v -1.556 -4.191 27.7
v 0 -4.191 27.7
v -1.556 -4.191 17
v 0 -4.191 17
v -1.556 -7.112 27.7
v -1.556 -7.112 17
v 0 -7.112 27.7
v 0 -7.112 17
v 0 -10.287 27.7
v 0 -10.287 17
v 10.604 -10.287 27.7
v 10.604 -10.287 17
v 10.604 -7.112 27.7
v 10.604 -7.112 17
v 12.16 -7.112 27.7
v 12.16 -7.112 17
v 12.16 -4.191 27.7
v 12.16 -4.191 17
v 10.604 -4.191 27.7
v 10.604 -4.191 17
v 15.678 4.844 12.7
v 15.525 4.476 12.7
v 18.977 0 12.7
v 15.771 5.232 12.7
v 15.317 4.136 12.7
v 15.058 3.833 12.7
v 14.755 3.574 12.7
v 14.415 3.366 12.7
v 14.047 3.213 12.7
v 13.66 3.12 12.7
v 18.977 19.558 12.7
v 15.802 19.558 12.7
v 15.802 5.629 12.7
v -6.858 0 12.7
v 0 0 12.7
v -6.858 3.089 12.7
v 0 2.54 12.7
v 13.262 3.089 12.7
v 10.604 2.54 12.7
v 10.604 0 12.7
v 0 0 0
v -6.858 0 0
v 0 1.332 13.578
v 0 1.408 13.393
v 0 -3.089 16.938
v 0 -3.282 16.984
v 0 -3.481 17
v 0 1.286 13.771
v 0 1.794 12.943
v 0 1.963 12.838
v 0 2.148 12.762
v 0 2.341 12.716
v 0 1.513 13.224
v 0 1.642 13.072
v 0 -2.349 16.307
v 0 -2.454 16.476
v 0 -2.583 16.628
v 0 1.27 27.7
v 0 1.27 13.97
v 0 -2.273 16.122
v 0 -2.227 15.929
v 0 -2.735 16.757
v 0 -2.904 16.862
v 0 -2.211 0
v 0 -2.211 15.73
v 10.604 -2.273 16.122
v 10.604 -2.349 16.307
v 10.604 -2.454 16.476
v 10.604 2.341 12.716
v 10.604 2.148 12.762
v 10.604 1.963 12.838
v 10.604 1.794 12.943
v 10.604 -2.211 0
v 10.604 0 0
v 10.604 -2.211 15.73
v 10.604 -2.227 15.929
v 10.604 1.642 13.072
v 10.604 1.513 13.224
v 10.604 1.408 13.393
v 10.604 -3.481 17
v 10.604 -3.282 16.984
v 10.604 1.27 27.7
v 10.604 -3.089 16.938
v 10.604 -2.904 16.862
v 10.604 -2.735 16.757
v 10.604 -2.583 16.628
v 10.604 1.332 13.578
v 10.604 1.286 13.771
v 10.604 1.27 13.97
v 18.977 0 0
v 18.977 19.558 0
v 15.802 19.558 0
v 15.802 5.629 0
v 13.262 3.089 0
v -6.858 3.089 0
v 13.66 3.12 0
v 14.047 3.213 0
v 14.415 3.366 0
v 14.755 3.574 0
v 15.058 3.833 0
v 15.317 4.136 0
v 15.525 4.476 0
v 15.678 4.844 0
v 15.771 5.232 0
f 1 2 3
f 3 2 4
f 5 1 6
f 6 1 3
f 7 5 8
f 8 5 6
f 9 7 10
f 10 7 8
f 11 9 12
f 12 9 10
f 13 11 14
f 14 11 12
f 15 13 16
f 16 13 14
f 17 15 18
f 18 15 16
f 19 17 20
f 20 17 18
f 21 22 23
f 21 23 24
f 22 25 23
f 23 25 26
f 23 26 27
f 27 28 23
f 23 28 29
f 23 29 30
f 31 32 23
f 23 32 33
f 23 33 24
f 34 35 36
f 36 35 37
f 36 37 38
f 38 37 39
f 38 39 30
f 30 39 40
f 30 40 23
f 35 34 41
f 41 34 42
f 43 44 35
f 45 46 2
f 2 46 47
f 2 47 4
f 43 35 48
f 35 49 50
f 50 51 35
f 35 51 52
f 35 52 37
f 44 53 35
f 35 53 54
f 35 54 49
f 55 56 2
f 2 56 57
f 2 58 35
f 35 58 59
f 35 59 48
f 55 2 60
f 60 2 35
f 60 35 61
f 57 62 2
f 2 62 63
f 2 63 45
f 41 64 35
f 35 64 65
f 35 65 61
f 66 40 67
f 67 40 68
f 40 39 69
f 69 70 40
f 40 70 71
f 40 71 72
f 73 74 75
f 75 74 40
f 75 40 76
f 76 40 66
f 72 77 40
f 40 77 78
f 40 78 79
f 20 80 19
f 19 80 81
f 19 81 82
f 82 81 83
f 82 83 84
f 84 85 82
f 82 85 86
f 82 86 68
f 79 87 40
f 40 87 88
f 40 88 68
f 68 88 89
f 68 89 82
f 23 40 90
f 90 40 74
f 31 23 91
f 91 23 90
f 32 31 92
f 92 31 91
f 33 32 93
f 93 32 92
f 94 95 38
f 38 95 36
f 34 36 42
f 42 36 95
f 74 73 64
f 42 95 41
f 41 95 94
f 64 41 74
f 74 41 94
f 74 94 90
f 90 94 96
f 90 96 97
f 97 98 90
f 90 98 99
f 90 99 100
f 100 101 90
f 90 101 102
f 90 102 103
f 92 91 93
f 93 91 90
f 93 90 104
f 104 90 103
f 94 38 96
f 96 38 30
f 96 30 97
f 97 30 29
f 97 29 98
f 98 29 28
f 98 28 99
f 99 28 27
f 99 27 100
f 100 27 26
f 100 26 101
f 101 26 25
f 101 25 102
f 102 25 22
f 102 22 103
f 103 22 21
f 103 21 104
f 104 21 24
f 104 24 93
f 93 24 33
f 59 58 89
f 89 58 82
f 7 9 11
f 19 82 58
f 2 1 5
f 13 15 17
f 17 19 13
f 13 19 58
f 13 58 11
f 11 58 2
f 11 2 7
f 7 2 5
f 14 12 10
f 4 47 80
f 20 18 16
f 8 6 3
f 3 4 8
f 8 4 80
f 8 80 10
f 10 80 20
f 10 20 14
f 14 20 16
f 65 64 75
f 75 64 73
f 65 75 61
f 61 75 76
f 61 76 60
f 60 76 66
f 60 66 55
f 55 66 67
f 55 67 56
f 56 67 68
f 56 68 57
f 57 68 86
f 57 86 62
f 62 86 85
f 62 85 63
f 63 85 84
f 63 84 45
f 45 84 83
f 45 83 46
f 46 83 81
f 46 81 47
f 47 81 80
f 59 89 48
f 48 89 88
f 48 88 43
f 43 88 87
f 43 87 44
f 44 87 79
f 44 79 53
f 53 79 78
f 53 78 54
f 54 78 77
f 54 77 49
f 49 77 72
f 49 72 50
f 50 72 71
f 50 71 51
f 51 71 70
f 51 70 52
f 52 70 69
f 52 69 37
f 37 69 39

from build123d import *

# Parameters (mm, degrees)
BOSS_EXTRUDE1_DEPTH = 12.7
FILLET1_R           = 2.54
BOSS_EXTRUDE2_DEPTH = 15
SKETCH3_W           = 20.43801088
SKETCH3_H           = 11.408302333
CUT_EXTRUDE1_DEPTH  = 17
FILLET2_R           = 1.27


with BuildPart() as part:
    # Sketch1 → Boss-Extrude1 (new body)
    with BuildSketch(Plane.XY):
        Polygon((0, 0), (0, -4.191), (-1.55575, -4.191), (-1.55575, -7.112), (0, -7.112), (0, -10.287), (10.6045, -10.287), (10.6045, -7.112), (12.16025, -7.112), (12.16025, -4.191), (10.6045, -4.191), (10.6045, 0), (18.97725, 0), (18.97725, 19.558), (15.80225, 19.558), (15.80225, 3.089), (-6.858, 3.089), (-6.858, 0), align=None)
    extrude(amount=BOSS_EXTRUDE1_DEPTH)

    # Fillet1
    fillet1_edges = [part.edges().sort_by_distance(p)[0] for p in [
        (15.80225, 3.089, 6.35),
    ]]
    fillet(fillet1_edges, radius=FILLET1_R)

    # Sketch2 → Boss-Extrude2 (add)
    with BuildSketch(Plane.XY.offset(12.7)):
        Polygon((0, 0), (0, 1.27), (10.6045, 1.27), (10.6045, 0), (10.6045, -4.191), (12.16025, -4.191), (12.16025, -7.112), (10.6045, -7.112), (10.6045, -10.287), (0, -10.287), (0, -7.112), (-1.55575, -7.112), (-1.55575, -4.191), (0, -4.191), align=None)
    extrude(amount=BOSS_EXTRUDE2_DEPTH)

    # Sketch3 → Cut-Extrude1 (cut)
    with BuildSketch(Plane(origin=(0, 0, 0), x_dir=(-1, 0, 0), z_dir=(0, 0, -1))):
        with Locations((-3.189611216, -7.915151167)):
            Rectangle(SKETCH3_W, SKETCH3_H)
    extrude(amount=-CUT_EXTRUDE1_DEPTH, mode=Mode.SUBTRACT)

    # Fillet2
    fillet2_edges = [part.edges().sort_by_distance(p)[0] for p in [
        (5.30225, -2.211, 17),
        (5.30225, 1.27, 12.7),
    ]]
    fillet(fillet2_edges, radius=FILLET2_R)


solid = part.part
